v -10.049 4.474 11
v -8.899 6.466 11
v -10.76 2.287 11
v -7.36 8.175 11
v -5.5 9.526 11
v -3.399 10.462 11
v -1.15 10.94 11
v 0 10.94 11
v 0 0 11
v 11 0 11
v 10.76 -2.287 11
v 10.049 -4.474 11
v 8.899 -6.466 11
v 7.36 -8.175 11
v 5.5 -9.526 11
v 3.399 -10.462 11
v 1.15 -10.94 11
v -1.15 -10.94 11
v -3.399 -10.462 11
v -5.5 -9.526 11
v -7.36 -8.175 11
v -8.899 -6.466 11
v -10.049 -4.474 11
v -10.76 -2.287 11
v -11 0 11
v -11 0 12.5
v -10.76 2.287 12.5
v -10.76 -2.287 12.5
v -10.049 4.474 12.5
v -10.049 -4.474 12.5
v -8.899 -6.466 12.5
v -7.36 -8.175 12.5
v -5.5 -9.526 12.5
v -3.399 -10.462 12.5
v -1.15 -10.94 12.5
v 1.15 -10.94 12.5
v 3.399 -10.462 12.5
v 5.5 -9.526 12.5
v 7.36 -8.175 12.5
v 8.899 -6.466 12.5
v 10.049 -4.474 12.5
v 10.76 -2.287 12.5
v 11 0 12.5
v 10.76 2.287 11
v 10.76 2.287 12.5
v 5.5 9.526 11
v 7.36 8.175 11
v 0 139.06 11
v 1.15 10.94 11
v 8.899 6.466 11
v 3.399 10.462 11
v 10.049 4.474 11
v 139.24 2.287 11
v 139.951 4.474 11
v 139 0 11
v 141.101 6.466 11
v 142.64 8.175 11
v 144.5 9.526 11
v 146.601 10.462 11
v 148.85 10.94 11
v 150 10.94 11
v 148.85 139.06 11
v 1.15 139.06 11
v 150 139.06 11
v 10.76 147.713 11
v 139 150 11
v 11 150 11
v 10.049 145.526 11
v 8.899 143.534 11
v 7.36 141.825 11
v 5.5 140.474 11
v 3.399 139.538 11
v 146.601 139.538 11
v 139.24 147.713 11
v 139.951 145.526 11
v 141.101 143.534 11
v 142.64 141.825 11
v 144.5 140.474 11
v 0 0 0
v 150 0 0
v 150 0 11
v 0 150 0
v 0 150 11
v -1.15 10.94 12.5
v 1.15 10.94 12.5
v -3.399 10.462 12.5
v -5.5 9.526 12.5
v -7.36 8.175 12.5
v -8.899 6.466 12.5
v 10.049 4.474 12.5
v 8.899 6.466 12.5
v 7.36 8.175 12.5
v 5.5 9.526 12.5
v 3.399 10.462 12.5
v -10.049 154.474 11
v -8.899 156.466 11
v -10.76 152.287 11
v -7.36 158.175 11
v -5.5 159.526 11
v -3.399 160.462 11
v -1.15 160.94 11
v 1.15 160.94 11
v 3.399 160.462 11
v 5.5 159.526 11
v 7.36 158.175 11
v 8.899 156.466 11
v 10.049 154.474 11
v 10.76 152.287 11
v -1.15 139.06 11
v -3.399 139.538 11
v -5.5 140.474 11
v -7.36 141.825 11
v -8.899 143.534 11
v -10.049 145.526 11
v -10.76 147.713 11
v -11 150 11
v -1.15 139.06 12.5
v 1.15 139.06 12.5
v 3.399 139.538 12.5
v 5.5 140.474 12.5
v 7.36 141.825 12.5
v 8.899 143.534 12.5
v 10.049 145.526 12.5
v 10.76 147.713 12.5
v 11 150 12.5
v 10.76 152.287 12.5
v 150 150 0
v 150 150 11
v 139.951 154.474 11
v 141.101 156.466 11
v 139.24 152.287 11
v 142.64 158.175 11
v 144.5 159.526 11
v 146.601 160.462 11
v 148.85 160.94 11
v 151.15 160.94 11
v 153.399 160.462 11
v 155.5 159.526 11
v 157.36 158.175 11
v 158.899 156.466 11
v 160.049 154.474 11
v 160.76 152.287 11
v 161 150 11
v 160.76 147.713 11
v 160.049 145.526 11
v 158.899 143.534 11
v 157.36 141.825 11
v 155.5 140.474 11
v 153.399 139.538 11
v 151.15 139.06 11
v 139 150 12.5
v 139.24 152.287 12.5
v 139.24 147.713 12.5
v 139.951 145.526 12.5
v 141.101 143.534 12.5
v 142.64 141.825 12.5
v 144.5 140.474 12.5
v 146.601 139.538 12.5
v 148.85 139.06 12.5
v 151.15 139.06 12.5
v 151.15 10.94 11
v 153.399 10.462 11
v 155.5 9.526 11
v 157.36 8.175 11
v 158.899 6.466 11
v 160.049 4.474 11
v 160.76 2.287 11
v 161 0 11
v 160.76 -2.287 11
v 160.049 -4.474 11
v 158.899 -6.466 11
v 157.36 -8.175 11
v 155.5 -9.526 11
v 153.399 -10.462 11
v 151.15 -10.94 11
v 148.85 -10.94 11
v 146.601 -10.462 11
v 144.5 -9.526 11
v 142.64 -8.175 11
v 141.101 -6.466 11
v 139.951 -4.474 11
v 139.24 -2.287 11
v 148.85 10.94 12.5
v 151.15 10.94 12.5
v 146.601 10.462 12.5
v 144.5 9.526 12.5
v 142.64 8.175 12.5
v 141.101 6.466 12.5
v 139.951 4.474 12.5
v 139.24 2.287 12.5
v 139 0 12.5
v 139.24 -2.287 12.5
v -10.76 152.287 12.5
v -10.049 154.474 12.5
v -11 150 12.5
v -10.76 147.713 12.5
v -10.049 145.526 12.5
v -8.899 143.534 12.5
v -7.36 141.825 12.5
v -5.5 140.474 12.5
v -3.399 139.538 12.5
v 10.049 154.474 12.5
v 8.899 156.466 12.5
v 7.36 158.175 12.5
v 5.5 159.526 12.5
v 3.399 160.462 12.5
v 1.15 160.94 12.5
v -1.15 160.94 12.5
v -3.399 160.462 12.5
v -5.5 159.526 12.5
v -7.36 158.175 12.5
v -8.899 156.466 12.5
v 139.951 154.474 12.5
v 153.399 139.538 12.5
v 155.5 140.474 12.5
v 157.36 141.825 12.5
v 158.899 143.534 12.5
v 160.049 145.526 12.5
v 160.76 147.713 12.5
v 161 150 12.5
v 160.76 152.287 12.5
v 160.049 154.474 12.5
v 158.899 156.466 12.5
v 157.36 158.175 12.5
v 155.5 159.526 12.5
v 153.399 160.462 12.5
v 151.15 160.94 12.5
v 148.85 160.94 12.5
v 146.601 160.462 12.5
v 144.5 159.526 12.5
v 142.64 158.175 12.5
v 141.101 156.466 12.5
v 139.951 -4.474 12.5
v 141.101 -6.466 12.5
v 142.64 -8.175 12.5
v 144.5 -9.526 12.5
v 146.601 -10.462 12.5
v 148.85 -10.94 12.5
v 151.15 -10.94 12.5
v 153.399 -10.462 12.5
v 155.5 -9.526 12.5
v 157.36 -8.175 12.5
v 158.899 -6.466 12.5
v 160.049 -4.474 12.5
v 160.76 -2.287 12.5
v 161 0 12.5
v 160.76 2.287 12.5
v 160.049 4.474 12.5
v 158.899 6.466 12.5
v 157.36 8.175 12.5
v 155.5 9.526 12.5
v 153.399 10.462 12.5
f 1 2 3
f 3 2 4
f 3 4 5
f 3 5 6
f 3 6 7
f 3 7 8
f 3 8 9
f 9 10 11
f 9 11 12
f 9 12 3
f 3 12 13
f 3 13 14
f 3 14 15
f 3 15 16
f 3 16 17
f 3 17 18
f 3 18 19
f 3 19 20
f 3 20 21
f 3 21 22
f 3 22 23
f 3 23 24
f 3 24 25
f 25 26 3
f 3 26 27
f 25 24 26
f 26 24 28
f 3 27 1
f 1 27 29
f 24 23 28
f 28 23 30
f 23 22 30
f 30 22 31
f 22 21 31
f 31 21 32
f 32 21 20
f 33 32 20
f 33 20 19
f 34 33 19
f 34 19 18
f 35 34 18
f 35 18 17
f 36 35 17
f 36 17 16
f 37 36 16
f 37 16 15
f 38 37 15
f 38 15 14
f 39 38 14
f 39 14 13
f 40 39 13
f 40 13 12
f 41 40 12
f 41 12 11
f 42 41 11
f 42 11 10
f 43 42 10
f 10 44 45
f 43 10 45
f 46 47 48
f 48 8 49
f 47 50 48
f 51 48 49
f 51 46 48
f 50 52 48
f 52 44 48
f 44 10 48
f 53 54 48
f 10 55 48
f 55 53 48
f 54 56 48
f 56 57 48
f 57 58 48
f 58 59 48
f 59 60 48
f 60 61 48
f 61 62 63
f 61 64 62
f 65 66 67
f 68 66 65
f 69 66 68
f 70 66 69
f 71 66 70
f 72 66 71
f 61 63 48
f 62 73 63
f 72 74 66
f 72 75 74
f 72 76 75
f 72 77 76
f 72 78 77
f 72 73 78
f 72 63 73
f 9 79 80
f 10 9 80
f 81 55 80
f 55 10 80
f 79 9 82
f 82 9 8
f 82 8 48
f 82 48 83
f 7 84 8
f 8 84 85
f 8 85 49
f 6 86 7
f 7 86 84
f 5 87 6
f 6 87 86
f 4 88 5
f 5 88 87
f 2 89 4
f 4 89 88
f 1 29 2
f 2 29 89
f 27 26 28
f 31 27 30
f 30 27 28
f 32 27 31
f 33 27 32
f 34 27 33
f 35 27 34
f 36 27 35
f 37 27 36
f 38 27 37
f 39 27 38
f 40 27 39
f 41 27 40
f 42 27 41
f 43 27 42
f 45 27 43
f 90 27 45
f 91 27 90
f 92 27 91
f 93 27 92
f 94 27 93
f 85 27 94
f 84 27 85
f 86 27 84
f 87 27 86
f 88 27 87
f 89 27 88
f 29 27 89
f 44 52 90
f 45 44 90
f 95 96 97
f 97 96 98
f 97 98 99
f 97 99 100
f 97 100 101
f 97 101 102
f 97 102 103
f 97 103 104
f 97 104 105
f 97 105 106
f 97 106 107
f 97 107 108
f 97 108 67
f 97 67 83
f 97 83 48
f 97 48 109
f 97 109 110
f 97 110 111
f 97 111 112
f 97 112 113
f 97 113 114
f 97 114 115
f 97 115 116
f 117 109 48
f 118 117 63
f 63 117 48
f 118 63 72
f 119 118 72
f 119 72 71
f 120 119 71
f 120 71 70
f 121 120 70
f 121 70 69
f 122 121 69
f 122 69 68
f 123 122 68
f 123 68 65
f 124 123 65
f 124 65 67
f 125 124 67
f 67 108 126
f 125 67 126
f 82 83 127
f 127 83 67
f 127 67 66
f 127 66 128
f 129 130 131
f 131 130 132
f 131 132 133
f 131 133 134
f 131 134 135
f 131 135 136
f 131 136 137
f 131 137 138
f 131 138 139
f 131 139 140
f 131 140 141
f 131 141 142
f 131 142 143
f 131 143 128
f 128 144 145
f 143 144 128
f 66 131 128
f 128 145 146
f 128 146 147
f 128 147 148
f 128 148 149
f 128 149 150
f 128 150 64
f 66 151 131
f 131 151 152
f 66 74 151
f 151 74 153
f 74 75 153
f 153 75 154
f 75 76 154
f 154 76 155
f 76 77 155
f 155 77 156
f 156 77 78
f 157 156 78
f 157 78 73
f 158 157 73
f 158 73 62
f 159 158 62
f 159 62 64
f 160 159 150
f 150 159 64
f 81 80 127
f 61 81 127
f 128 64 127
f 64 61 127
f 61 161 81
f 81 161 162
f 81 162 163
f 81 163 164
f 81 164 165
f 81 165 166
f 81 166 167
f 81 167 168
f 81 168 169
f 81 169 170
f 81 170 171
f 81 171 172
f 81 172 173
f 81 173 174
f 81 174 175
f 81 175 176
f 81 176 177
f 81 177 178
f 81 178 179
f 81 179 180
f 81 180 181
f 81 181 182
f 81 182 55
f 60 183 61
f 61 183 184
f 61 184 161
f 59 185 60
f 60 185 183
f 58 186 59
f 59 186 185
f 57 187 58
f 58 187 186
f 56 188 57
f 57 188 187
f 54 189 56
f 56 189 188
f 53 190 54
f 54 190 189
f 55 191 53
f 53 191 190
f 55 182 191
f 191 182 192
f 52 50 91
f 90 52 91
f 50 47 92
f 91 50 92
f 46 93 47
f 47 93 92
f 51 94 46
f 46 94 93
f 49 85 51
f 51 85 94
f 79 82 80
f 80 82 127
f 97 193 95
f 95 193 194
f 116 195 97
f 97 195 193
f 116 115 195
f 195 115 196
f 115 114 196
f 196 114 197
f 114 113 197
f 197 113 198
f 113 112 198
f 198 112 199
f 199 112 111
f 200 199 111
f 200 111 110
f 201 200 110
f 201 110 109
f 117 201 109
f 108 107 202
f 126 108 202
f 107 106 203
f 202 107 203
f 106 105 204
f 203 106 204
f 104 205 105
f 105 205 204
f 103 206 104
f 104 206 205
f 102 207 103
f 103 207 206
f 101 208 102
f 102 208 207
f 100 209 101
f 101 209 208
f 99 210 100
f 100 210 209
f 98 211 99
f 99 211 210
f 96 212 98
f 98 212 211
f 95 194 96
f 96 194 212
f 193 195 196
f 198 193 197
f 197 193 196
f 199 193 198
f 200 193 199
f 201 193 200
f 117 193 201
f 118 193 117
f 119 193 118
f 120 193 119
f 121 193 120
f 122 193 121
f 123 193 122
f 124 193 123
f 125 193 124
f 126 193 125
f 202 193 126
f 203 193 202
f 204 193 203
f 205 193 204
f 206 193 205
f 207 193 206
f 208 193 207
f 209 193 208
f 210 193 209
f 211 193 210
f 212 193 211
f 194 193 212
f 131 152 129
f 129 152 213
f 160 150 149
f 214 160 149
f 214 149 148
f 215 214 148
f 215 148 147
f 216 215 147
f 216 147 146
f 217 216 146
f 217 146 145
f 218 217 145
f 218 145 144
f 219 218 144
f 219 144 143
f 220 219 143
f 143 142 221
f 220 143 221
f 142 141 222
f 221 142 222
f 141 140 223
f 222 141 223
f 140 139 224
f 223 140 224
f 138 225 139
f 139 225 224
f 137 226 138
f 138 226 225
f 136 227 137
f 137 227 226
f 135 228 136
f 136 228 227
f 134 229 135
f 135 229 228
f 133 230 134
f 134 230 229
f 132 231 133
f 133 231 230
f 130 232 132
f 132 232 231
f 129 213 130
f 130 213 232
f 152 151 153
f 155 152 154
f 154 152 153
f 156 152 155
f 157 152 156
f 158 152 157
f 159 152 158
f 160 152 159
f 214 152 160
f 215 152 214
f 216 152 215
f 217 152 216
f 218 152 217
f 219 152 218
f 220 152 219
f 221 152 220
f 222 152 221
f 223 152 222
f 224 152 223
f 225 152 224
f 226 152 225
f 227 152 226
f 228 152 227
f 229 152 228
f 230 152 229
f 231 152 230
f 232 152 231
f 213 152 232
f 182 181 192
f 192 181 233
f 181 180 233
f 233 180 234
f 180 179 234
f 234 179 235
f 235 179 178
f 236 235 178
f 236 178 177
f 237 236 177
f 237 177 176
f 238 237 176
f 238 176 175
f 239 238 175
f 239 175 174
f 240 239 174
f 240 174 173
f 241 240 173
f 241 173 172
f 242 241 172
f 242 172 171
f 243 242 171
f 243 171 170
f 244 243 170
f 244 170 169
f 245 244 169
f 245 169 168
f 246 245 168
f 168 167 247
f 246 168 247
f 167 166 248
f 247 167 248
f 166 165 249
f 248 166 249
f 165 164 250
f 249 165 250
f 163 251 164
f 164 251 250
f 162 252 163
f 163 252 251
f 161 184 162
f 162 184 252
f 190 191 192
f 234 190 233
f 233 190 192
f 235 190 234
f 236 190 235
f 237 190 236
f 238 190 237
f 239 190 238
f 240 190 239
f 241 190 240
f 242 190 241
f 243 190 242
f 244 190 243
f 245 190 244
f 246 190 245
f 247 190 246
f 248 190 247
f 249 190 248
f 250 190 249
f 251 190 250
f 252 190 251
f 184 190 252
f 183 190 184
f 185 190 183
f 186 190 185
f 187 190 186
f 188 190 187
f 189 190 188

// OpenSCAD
x = 150;
y = 150;
plate_thickness = 11;

radius = 11;
washer_thickness = 1.5;

cube(size = [x, y, plate_thickness], center = false);

translate([0, 0, plate_thickness]){
	cylinder(h = washer_thickness, r1 = radius, r2 = radius, center = false);
}

translate([x, 0, plate_thickness]){
	cylinder(h = washer_thickness, r1 = radius, r2 = radius, center = false);
}

translate([0, y, plate_thickness]){
	cylinder(h = washer_thickness, r1 = radius, r2 = radius, center = false);
}

translate([x, y, plate_thickness]){
	cylinder(h = washer_thickness, r1 = radius, r2 = radius, center = false);
}
